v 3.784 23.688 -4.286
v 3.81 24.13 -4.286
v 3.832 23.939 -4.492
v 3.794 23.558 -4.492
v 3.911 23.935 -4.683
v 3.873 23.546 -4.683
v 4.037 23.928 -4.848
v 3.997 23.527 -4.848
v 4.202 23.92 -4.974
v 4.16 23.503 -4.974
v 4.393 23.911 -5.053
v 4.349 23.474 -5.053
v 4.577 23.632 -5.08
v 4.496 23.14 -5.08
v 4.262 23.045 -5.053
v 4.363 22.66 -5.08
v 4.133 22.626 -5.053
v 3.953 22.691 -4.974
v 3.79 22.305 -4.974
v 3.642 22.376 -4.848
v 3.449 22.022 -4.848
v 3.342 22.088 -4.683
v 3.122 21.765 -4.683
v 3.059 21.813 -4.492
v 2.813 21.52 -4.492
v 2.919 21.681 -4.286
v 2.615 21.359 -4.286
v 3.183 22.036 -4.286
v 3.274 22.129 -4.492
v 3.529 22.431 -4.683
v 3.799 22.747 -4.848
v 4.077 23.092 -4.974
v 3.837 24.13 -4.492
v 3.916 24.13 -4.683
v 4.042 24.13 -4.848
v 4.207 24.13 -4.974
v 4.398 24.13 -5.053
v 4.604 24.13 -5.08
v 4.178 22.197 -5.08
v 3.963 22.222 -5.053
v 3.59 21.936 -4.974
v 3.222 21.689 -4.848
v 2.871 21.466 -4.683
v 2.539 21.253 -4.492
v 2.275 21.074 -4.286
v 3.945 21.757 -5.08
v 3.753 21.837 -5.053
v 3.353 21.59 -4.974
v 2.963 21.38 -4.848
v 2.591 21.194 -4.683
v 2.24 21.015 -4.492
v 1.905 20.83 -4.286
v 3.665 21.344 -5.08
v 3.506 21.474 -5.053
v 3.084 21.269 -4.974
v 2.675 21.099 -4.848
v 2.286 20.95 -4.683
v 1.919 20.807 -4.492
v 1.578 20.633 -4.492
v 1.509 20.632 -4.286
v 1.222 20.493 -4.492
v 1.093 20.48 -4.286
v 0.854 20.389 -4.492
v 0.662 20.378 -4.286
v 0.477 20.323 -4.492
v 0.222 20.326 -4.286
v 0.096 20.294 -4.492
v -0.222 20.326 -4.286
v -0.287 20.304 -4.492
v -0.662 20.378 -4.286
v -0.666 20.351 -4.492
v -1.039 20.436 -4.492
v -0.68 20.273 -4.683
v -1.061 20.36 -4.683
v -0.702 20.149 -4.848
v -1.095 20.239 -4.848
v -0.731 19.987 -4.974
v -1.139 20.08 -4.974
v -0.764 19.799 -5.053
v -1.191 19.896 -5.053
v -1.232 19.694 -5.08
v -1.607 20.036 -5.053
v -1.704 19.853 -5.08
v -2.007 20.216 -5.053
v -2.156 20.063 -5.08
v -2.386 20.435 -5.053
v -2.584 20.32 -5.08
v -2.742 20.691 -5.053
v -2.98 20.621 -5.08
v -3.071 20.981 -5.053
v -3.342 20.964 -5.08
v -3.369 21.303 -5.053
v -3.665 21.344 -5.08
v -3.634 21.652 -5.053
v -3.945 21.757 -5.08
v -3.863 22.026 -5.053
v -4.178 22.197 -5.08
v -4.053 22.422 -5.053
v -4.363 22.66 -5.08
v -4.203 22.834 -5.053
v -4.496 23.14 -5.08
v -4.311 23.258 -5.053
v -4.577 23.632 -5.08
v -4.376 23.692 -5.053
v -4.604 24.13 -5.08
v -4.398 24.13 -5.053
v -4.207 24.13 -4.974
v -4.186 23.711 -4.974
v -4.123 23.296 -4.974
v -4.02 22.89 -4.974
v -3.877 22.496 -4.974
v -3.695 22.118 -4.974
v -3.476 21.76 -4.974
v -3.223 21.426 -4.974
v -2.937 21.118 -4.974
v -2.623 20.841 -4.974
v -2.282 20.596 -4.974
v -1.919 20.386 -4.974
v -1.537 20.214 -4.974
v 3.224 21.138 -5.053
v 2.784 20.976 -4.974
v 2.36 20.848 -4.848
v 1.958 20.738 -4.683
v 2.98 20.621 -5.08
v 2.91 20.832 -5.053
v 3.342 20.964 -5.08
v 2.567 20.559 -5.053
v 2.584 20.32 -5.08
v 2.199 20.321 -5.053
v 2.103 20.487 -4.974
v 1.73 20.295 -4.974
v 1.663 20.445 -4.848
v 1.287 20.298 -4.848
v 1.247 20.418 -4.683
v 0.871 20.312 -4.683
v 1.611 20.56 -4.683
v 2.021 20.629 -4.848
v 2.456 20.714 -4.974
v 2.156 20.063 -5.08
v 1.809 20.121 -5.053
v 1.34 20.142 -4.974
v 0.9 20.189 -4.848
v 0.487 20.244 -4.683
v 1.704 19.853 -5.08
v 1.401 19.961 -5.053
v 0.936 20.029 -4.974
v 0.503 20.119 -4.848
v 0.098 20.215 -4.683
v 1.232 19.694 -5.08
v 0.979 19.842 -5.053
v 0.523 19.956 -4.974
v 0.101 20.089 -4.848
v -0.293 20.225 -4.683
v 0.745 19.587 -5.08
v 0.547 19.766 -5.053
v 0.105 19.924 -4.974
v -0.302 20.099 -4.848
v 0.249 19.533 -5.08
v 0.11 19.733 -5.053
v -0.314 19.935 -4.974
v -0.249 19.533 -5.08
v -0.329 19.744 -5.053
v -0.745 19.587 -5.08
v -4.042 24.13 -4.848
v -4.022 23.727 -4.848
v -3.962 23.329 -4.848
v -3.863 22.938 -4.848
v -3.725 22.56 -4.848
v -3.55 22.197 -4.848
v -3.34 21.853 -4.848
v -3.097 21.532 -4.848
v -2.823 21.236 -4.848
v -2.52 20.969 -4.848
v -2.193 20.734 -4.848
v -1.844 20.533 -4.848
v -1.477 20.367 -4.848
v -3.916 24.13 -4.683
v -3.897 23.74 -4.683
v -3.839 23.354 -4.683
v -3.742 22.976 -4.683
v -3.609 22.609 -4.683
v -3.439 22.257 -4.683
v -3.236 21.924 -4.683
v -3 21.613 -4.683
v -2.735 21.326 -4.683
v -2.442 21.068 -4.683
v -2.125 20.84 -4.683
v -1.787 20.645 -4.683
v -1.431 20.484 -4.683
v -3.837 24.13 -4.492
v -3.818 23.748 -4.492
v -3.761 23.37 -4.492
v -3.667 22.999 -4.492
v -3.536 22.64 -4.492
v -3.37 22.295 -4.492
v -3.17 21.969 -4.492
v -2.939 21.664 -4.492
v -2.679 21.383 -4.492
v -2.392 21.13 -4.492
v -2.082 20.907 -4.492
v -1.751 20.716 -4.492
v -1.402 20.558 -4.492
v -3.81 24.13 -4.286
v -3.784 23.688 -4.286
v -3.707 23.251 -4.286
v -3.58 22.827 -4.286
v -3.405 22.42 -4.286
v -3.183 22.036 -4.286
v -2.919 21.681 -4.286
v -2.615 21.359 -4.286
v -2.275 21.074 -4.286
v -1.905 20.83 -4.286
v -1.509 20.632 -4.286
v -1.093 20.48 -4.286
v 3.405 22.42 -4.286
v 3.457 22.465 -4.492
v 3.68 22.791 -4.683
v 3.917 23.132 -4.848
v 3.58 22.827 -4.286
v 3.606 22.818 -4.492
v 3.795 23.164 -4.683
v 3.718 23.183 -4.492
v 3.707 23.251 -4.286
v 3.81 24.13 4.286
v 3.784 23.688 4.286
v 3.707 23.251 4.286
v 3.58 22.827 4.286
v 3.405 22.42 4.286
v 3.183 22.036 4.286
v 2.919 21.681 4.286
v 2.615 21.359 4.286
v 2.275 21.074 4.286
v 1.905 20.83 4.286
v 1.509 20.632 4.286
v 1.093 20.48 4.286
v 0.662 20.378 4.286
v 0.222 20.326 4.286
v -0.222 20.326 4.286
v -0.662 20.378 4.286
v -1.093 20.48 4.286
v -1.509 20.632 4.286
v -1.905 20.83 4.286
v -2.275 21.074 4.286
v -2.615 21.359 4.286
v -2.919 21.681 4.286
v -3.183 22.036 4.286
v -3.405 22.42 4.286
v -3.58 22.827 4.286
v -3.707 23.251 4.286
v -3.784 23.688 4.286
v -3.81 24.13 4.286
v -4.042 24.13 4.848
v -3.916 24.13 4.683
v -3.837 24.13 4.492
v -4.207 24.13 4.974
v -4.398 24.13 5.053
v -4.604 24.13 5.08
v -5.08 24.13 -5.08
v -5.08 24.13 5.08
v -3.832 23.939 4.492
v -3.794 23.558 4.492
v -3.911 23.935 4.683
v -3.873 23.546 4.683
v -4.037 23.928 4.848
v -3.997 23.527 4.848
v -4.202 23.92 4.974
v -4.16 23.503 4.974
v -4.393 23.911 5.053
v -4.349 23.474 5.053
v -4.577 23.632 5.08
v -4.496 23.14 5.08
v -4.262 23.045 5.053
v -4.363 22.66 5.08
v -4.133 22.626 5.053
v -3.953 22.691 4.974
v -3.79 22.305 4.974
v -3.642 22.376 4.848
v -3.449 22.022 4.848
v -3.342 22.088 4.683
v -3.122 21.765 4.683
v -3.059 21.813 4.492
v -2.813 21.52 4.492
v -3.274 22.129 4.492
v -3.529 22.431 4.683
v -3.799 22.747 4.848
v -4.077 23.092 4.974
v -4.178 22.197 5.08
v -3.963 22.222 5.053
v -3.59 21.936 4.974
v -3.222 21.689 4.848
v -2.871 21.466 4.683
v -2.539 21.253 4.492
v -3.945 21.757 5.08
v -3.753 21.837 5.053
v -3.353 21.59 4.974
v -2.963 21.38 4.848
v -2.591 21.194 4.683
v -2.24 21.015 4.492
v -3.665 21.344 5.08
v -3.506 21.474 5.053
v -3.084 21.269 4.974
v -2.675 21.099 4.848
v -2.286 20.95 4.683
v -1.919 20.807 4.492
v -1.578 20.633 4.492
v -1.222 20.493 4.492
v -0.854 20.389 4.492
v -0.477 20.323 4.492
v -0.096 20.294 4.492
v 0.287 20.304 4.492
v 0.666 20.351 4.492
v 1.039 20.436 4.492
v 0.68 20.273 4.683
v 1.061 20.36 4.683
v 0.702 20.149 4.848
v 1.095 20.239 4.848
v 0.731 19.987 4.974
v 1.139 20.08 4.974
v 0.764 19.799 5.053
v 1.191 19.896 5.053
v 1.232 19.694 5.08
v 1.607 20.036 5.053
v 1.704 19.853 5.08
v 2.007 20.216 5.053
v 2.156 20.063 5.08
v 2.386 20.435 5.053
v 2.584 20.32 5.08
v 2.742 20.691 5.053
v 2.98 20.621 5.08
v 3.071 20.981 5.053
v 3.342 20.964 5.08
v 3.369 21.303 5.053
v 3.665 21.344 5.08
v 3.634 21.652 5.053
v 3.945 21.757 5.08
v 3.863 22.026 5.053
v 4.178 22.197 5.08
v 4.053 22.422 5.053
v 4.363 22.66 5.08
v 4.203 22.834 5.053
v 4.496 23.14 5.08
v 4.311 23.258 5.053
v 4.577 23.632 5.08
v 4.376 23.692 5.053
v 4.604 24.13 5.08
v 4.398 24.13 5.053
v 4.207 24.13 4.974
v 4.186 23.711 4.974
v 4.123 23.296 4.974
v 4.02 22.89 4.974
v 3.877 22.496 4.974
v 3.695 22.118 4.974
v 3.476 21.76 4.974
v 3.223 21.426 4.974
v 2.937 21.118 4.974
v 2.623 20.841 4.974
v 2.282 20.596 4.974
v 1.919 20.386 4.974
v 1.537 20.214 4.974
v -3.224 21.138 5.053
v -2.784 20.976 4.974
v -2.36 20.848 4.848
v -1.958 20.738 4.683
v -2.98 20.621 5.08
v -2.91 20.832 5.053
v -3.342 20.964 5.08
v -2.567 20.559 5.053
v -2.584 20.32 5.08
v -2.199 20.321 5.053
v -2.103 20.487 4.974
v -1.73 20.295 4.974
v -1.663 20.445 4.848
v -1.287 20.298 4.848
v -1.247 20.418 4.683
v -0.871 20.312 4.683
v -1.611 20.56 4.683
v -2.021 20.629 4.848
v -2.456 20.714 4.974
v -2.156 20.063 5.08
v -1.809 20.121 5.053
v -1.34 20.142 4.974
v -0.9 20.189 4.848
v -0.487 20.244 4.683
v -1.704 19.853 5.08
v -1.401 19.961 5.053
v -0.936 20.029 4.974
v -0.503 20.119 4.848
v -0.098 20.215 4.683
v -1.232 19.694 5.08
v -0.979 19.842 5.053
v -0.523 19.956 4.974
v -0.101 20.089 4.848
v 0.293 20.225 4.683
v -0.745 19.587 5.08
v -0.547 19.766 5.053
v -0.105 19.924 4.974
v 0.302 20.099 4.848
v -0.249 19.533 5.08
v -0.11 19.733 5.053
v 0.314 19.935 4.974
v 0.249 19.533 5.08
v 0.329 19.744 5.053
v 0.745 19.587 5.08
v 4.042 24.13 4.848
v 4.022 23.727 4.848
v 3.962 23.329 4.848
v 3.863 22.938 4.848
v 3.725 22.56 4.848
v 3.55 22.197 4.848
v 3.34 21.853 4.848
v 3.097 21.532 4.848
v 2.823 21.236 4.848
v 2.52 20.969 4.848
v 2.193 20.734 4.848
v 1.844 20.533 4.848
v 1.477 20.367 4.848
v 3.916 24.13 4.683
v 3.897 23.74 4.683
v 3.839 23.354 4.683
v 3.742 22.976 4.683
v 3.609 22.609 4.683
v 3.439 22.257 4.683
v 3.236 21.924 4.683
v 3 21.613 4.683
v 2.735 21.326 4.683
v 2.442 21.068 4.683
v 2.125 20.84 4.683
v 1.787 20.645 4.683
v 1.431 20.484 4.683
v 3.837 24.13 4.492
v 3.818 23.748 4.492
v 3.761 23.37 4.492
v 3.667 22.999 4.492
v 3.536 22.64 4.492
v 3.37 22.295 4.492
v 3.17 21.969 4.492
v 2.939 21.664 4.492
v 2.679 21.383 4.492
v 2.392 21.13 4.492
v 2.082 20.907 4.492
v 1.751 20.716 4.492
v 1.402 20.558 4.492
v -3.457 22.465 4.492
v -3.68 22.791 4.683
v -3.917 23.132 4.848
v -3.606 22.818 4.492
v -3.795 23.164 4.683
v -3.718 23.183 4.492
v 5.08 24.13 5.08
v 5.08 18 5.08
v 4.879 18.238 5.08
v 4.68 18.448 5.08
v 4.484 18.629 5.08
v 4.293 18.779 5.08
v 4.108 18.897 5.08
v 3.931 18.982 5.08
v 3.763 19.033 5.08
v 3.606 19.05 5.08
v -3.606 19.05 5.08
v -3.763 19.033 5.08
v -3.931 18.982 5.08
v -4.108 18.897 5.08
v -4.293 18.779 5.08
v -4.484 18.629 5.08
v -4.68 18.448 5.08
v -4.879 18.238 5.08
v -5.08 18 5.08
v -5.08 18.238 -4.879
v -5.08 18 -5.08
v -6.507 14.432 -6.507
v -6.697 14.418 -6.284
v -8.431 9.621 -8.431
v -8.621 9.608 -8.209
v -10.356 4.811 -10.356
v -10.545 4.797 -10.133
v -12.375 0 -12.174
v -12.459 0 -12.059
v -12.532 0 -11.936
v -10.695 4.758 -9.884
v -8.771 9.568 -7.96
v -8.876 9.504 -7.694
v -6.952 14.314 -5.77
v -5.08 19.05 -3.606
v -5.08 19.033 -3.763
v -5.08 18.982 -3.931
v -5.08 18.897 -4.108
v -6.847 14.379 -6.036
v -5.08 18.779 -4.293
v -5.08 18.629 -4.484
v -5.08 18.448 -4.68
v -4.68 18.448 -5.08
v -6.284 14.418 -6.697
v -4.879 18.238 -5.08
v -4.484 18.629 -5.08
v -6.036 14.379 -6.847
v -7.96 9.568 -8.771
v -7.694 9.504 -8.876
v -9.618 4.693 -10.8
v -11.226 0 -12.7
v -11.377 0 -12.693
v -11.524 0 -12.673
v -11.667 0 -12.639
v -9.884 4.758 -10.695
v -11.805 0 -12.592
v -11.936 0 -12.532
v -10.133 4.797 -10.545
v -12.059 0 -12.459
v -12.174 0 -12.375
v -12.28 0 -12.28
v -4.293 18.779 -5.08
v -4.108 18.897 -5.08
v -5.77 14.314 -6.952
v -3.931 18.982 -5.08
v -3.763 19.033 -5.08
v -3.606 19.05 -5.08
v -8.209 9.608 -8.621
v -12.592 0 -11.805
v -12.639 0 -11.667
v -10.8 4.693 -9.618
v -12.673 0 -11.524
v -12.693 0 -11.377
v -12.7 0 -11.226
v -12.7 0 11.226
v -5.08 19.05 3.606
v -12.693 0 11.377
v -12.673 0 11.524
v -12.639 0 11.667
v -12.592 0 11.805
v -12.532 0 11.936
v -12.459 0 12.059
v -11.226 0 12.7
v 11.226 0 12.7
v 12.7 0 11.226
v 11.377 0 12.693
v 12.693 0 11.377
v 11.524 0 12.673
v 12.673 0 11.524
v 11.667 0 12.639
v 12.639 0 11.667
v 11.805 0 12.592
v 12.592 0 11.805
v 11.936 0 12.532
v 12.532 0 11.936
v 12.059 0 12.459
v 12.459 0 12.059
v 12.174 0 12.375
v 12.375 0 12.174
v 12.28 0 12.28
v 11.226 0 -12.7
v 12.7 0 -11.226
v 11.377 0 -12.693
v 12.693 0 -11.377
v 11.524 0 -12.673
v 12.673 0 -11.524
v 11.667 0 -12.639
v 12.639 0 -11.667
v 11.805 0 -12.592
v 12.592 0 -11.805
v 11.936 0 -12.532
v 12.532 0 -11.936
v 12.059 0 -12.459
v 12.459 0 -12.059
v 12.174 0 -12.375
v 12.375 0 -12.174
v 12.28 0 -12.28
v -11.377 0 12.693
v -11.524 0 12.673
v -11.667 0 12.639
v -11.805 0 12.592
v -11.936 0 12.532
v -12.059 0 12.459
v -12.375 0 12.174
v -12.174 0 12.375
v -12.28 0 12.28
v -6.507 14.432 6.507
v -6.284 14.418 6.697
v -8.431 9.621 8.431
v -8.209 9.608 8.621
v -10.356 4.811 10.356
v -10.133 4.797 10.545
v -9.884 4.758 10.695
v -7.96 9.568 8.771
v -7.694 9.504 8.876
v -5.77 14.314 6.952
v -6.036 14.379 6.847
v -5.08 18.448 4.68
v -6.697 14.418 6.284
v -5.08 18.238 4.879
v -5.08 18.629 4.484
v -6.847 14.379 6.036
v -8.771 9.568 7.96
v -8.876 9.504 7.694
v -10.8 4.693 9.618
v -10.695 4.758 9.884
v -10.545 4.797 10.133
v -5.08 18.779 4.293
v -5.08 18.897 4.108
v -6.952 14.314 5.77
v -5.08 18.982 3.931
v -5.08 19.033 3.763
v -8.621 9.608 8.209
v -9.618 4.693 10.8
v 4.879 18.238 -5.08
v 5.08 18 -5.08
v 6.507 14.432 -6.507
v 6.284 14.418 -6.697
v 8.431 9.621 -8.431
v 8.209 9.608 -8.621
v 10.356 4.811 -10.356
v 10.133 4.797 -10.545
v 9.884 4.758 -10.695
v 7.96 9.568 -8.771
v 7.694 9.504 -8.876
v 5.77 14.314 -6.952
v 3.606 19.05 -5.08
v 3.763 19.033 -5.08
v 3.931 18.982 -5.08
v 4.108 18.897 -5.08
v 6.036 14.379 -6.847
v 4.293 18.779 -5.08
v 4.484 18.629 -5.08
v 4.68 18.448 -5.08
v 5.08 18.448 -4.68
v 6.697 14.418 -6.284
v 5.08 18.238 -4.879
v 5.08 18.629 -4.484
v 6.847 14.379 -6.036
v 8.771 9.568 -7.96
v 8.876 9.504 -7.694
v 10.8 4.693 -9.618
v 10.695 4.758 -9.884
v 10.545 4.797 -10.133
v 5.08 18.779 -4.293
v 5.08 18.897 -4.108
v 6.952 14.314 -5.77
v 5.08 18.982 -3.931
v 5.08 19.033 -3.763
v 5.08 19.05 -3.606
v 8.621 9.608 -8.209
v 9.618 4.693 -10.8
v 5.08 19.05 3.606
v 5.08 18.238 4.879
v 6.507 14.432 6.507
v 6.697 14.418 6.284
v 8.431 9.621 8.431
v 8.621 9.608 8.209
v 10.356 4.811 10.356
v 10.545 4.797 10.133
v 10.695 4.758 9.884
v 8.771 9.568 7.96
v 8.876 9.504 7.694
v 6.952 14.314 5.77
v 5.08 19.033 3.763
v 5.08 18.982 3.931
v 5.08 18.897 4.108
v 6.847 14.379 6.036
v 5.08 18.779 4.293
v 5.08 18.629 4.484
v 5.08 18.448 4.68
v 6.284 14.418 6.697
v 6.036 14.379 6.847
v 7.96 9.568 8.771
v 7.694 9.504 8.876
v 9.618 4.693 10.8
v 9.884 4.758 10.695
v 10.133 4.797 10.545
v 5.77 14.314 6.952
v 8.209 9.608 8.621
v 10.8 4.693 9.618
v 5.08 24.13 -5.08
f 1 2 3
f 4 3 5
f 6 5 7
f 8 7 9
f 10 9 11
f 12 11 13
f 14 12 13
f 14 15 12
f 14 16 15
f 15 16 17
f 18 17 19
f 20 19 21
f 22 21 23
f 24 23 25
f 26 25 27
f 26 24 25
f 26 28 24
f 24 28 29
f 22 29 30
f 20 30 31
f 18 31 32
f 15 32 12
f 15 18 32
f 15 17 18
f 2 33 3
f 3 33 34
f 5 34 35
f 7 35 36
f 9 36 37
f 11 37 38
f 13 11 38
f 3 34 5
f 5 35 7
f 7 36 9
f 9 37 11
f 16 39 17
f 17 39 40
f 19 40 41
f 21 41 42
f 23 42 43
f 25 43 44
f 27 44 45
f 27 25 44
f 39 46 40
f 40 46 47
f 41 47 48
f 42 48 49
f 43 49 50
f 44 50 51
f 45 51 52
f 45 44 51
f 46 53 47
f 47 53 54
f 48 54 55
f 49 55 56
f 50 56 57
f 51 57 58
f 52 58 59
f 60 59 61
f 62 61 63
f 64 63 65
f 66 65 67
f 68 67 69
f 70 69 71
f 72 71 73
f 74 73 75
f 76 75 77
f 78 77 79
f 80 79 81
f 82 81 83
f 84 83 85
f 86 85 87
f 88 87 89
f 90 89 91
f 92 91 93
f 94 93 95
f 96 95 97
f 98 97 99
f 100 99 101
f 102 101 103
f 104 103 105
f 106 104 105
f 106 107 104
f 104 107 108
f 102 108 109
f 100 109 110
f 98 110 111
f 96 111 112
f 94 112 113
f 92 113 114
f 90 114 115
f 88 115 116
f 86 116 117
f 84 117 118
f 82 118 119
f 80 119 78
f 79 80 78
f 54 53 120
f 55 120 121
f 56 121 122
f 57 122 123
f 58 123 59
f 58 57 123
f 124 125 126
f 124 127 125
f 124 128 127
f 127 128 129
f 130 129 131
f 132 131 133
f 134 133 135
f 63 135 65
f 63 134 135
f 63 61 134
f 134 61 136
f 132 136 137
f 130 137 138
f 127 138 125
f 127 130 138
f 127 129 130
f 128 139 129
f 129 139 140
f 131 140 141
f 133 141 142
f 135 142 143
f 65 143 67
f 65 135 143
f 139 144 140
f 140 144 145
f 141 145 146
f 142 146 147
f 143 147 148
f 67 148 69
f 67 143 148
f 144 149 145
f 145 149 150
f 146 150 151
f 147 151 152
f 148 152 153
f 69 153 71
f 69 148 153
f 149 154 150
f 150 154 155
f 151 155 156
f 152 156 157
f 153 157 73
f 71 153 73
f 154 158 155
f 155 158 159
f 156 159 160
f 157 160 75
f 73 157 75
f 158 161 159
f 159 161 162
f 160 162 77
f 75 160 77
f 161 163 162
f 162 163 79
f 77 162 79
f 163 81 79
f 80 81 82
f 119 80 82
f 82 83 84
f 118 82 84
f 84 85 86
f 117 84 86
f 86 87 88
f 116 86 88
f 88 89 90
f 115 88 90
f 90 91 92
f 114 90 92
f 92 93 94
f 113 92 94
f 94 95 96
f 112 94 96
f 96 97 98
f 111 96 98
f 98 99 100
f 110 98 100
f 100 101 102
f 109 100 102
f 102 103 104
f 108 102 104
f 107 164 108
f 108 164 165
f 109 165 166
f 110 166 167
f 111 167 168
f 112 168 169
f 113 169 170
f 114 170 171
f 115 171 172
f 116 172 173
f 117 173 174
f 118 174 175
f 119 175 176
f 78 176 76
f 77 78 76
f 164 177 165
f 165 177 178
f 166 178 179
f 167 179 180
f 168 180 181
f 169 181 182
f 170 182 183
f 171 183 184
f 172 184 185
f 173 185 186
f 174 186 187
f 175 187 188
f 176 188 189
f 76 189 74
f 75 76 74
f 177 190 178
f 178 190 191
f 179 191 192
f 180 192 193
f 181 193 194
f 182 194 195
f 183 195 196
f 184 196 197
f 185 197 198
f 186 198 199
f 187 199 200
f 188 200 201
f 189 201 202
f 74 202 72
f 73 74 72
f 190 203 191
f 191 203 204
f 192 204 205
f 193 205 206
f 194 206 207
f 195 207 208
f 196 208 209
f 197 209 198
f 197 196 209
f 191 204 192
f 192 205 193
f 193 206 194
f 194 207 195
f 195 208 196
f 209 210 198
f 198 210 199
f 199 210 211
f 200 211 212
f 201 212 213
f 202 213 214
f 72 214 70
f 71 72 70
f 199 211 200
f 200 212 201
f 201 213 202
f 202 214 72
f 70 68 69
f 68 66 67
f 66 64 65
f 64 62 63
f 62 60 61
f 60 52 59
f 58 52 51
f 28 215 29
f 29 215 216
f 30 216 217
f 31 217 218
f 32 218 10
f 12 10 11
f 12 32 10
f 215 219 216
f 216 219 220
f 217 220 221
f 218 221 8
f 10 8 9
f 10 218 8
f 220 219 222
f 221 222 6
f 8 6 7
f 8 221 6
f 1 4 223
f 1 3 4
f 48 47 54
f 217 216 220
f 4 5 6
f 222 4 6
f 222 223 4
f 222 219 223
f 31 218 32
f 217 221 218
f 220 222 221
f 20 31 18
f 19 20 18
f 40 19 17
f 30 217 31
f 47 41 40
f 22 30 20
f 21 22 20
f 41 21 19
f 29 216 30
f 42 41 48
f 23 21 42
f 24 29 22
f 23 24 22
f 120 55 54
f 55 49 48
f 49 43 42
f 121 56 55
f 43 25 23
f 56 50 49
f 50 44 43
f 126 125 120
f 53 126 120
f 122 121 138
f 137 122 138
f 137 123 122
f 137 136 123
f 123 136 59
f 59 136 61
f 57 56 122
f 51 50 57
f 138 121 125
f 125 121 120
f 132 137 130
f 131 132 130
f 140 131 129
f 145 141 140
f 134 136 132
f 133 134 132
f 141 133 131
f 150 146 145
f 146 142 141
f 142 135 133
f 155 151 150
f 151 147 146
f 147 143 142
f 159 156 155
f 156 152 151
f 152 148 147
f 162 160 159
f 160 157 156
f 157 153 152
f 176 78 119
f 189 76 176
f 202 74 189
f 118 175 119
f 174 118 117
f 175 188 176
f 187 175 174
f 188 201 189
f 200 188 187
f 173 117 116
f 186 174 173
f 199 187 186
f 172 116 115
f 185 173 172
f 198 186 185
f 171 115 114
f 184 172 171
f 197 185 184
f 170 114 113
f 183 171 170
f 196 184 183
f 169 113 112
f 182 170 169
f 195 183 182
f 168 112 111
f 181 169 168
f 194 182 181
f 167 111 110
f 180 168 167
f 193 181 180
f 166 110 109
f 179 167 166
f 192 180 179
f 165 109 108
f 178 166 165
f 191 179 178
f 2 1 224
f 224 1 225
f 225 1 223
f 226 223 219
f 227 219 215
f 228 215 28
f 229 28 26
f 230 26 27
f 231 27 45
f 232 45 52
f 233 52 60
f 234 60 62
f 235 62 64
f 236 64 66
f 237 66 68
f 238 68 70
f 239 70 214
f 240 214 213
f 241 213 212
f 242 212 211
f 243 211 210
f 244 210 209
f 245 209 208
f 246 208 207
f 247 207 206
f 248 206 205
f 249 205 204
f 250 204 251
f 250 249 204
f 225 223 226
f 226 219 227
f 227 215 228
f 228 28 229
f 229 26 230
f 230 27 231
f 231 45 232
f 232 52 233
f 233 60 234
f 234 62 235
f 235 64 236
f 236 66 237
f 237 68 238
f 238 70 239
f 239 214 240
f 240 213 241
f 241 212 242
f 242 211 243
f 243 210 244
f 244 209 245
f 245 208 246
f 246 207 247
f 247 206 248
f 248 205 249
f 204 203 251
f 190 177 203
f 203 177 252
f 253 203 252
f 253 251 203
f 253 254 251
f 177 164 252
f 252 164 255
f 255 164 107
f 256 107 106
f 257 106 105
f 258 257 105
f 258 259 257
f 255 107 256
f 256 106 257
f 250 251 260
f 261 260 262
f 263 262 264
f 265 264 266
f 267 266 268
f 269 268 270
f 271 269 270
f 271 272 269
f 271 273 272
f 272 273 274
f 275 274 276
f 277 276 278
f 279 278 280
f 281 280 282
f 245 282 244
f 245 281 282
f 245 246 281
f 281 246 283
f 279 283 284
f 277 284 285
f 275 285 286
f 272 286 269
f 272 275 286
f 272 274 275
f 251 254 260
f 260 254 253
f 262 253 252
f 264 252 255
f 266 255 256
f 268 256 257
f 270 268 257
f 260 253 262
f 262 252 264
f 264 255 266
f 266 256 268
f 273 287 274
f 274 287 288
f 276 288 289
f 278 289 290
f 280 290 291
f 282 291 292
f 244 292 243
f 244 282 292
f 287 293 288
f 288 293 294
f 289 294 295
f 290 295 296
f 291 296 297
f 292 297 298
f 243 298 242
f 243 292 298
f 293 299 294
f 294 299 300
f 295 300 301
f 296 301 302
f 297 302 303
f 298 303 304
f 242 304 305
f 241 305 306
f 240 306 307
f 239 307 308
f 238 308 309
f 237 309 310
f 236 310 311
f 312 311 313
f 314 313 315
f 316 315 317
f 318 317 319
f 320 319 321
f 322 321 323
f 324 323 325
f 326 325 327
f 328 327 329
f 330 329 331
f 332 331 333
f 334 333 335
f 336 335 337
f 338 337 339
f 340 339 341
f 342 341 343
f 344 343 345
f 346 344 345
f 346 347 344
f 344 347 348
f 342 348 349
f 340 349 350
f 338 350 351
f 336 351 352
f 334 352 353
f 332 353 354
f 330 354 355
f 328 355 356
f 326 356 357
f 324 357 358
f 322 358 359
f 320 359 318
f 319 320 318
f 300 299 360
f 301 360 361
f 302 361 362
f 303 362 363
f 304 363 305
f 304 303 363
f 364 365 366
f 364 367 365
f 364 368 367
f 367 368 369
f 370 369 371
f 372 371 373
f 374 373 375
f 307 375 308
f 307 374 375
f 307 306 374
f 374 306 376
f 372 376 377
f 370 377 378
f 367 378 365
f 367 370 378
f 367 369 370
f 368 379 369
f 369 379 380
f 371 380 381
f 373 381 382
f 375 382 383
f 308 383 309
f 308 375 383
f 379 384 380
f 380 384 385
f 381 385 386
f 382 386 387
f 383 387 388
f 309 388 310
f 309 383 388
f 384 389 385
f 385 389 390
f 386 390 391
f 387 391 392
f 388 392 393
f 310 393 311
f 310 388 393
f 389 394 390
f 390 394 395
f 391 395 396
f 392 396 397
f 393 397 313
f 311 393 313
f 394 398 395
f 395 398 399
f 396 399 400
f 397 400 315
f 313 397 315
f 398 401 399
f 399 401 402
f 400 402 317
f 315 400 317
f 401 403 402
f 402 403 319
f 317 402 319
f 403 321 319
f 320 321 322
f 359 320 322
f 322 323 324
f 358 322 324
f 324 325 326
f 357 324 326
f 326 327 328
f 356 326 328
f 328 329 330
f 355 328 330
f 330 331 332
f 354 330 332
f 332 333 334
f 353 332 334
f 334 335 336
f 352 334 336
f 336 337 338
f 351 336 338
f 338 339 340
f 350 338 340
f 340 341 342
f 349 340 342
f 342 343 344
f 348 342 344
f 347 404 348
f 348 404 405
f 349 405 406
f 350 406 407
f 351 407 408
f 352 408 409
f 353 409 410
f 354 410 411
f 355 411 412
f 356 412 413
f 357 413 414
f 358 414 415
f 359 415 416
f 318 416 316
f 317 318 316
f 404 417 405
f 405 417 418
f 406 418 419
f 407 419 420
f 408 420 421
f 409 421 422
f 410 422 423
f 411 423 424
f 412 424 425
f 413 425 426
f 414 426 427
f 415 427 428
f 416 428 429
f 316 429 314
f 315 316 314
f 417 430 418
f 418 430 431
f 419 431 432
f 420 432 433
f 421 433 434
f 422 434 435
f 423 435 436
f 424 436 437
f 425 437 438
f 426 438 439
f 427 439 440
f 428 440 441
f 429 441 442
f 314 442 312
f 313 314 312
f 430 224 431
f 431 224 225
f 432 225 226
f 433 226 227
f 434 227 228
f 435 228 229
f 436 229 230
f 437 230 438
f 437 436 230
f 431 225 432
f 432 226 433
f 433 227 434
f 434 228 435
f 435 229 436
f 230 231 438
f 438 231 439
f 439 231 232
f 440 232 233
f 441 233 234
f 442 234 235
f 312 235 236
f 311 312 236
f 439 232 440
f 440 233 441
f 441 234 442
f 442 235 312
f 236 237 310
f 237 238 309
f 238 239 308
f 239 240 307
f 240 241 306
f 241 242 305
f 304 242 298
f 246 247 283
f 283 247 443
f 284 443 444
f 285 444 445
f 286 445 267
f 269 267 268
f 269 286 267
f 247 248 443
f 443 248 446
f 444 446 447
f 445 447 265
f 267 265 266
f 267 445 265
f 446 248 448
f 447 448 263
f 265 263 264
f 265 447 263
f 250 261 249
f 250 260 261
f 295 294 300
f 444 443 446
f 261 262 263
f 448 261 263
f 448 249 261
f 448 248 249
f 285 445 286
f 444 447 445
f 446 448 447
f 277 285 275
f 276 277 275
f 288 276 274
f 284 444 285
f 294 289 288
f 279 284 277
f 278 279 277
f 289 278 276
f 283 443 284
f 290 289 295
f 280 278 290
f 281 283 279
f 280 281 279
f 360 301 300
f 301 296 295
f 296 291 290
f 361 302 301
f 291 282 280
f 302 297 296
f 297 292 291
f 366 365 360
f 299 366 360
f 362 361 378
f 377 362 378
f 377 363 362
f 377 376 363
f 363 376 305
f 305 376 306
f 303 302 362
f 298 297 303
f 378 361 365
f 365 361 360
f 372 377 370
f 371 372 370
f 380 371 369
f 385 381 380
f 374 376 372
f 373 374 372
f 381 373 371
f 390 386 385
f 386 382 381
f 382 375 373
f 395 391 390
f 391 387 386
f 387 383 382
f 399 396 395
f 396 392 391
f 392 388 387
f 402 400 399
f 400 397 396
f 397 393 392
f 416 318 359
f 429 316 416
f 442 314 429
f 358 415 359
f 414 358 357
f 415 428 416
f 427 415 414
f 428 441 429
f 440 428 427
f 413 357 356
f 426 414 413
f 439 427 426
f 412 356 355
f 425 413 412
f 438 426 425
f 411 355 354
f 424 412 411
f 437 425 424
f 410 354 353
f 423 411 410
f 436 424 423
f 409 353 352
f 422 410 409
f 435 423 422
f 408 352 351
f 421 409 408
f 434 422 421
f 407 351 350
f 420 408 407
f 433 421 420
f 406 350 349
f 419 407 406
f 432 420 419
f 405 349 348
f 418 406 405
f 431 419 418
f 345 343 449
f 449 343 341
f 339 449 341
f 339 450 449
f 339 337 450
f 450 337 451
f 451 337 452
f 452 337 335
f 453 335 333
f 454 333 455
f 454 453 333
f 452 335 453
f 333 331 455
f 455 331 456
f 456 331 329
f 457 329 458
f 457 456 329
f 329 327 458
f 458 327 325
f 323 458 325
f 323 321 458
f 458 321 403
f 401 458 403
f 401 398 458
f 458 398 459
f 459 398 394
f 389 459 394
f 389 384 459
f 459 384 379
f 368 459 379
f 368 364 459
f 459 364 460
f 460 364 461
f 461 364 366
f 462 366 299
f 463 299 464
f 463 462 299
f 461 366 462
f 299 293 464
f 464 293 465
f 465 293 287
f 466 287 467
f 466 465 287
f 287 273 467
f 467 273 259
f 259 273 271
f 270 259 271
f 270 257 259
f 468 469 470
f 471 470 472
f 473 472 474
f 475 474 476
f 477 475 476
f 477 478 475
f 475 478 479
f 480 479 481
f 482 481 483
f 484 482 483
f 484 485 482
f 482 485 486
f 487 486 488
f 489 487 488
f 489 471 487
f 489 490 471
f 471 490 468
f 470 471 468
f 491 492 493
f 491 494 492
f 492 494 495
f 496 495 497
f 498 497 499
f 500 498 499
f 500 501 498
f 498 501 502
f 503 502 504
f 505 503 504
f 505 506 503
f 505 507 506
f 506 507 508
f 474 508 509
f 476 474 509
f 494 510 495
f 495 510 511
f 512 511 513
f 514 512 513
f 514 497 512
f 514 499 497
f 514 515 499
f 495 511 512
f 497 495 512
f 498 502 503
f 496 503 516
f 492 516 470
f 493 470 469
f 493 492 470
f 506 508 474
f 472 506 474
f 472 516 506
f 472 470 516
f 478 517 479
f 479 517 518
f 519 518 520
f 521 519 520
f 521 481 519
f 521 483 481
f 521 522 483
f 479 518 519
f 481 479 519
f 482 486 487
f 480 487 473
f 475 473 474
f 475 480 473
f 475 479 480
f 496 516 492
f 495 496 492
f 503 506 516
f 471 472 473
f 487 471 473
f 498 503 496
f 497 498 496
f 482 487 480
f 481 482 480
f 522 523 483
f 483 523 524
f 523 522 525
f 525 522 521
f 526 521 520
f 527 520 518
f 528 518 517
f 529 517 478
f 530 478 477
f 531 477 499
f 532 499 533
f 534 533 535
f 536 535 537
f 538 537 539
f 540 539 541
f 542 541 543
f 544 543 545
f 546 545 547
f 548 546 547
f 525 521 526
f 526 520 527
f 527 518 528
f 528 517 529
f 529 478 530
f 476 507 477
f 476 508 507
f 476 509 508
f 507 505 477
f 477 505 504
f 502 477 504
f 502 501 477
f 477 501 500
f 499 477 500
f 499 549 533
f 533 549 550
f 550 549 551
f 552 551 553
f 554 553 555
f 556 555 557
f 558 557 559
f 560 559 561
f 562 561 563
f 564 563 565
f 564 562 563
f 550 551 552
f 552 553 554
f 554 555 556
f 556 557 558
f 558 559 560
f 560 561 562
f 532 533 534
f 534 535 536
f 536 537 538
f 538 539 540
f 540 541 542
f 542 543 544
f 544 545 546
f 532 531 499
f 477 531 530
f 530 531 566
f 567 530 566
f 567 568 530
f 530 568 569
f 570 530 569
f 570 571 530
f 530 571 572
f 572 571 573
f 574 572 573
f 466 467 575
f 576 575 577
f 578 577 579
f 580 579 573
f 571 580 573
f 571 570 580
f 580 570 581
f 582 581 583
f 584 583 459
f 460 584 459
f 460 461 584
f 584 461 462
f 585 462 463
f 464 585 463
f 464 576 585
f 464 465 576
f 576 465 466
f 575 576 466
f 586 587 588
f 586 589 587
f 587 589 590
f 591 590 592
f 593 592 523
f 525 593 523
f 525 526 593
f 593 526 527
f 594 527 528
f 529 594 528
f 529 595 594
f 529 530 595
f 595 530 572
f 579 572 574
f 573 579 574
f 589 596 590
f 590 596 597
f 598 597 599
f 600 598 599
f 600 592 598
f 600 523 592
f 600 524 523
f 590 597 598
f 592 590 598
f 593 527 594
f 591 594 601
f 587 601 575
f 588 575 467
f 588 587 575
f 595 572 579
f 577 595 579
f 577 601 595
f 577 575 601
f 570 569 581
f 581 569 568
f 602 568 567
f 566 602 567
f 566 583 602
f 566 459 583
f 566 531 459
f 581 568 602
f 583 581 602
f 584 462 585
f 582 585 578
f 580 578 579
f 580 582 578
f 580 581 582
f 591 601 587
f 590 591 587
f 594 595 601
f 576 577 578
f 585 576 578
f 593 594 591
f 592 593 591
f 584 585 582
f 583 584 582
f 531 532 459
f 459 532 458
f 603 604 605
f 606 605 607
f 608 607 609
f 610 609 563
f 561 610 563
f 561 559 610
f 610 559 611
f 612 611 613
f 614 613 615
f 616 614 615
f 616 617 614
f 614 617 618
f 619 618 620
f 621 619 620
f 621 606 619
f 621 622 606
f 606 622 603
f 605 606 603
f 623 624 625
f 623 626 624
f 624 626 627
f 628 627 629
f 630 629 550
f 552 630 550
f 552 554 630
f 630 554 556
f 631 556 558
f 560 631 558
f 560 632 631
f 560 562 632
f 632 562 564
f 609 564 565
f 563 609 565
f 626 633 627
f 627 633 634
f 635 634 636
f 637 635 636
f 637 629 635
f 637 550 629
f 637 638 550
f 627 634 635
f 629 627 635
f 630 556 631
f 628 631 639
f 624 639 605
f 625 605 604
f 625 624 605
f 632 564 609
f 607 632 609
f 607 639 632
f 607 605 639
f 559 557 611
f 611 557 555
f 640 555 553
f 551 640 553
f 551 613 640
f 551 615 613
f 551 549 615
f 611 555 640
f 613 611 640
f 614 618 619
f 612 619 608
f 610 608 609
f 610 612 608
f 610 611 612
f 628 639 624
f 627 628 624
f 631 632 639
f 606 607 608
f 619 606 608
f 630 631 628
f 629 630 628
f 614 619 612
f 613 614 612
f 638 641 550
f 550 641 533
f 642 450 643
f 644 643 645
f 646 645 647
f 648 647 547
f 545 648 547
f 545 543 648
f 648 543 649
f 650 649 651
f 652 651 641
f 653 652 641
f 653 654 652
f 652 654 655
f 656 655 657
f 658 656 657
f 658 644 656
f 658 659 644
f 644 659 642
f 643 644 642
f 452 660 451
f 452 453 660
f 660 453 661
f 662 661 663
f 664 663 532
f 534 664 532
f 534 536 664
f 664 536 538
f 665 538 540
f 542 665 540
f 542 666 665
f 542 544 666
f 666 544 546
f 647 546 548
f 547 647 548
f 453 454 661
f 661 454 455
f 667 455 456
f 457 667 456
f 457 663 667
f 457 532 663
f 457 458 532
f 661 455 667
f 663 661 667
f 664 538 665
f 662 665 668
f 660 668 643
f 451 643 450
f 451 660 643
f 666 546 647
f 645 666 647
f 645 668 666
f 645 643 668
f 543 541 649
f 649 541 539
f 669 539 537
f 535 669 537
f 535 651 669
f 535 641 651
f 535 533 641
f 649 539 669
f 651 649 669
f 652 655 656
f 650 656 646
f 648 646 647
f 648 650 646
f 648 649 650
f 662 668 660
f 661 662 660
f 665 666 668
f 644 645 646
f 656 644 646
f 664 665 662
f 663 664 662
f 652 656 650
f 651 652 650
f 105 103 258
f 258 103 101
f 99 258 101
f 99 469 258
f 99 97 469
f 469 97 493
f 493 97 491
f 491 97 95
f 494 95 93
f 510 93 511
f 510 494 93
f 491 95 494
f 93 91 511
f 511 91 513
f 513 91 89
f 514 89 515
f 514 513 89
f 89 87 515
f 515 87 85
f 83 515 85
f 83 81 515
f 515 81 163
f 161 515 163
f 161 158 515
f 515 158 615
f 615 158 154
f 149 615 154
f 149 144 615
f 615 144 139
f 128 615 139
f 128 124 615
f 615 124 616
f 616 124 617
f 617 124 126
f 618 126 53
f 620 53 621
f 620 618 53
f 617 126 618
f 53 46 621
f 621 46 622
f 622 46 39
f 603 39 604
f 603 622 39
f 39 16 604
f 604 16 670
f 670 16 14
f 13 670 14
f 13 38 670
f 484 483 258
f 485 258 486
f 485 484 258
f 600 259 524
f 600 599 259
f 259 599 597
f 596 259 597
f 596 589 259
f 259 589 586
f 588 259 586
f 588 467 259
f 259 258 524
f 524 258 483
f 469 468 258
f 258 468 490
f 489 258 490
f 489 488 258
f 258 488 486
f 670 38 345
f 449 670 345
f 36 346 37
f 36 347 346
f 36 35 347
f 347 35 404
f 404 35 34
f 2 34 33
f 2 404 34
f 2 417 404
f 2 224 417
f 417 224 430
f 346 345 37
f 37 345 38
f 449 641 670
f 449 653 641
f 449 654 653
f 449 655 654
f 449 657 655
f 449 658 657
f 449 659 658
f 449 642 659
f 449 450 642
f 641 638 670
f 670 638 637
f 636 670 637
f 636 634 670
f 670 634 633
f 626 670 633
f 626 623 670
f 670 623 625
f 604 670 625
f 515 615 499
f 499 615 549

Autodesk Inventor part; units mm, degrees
ref_plane "YZ Plane" through (0, 0, 0) normal (1, 0, 0) x (0, 1, 0)
ref_plane "XY Plane" through (0, 0, 0) normal (0, 0, 1) x (1, 0, 0)
sketch "Sketch1" plane through (0, 0, 0) normal (0, 1, 0) x (-1, 0, 0)
  line L0 (-12.7, 12.7) -> (-12.7, -12.7)
  line L1 (-12.7, -12.7) -> (12.7, -12.7)
  line L2 (12.7, -12.7) -> (12.7, 12.7)
  line L3 (12.7, 12.7) -> (-12.7, 12.7)
  line L4 (-12.7, 12.7) -> (12.7, -12.7) construction
  line L5 (-12.7, -12.7) -> (12.7, 12.7) construction
  point P0 (0, 0)
  dimension "base" = 25.4
ref_plane "Work Plane1" through (0, 19.05, 0) normal (0, 1, 0) x (-1, 0, 0)
sketch "Sketch2" plane through (0, 19.05, 0) normal (0, 1, 0) x (-1, 0, 0)
  line L0 (-5.08, 5.08) -> (-5.08, -5.08)
  line L1 (-5.08, -5.08) -> (5.08, -5.08)
  line L2 (5.08, -5.08) -> (5.08, 5.08)
  line L3 (5.08, 5.08) -> (-5.08, 5.08)
  line L4 (-5.08, 5.08) -> (5.08, -5.08) construction
  line L5 (-5.08, -5.08) -> (5.08, 5.08) construction
  point P0 (0, 0)
  dimension "topOfPyramid" = 10.16
loft "Loft1" add profiles "Sketch1", "Sketch2"
sketch "Sketch3" plane through (0, 0, 0) normal (0, 0, 1) x (1, 0, 0)
  arc A0 (-3.81, 24.13) -> (3.81, 24.13) centre (0, 24.13) ccw
  arc A1 (-5.08, 24.13) -> (5.08, 24.13) centre (0, 24.13) ccw
  line L0 (5.08, 19.05) -> (-5.08, 19.05) projected
  line L1 (3.81, 24.13) -> (5.08, 24.13)
  line L2 (-3.81, 24.13) -> (-5.08, 24.13)
  line L3 (-5.08, 24.13) -> (-5.08, 19.05)
  line L4 (5.08, 24.13) -> (5.08, 19.05)
  line L5 (12.7, 0) -> (5.08, 19.05) projected
  line L6 (5.08, 19.05) -> (0, 19.05)
  line L7 (-5.08, 19.05) -> (5.08, 19.05) projected
  line L8 (-5.08, 19.05) -> (0, 19.05)
  point P0 (0, 0)
  dimension "innerDiamForRope" = 7.62
  dimension "centerForRope" = 5.08
  dimension "outsideDiam" = 10.16
extrude "Extrusion1" add sketch "Sketch3" along normal mid plane 10.16
fillet "Fillet3" radius 1.5875 4 edges at (8.89, 9.525, 8.89) (8.89, 9.525, -8.89) (-8.89, 9.525, 8.89) (-8.89, 9.525, -8.89)
fillet "Fillet5" radius 0.7937 2 edges at (0, 20.32, 5.08) (0, 20.32, -5.08)
equation "\"centerForRope\" = 0.5 * outsideDiam"
equation "\"widthOfTop\" = topOfPyramid"
properties part number "SupportForMouseWire"
